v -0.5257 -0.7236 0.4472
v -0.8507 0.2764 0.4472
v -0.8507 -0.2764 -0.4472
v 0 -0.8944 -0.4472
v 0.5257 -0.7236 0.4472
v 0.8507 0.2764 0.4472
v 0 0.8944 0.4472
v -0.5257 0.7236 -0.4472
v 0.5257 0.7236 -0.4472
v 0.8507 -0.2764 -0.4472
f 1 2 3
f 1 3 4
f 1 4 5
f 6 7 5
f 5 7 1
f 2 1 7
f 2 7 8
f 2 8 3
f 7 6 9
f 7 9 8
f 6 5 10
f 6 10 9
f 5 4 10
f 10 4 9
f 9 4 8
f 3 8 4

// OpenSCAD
polyhedron( points = [[-0.525731112132344, -0.723606797754912, 0.447213595473526], [-0.850650808336613, 0.276393202340268, 0.447213595473526], [4.29649456012758e-11, 0.894427190970124, 0.447213595473526], [0.850650808311554, 0.276393202187503, 0.447213595473526], [0.525731112057646, -0.723606797754912, 0.447213595473526], [-1.00939074433604e-11, -0.894427190961642, -0.447213595480514], [-0.850650808296788, -0.276393202165862, -0.447213595480514], [-0.525731112000817, 0.723606797735226, -0.447213595492425], [0.525731112160332, 0.723606797691579, -0.447213595452447], [0.850650808204158, -0.276393202287373, -0.447213595461731]], faces = [[0, 1, 6], [0, 6, 5], [0, 5, 4], [0, 4, 3, 2, 1], [1, 2, 7], [1, 7, 6], [2, 3, 8], [2, 8, 7], [3, 4, 9], [3, 9, 8], [4, 5, 9], [5, 6, 7, 8, 9]]);
